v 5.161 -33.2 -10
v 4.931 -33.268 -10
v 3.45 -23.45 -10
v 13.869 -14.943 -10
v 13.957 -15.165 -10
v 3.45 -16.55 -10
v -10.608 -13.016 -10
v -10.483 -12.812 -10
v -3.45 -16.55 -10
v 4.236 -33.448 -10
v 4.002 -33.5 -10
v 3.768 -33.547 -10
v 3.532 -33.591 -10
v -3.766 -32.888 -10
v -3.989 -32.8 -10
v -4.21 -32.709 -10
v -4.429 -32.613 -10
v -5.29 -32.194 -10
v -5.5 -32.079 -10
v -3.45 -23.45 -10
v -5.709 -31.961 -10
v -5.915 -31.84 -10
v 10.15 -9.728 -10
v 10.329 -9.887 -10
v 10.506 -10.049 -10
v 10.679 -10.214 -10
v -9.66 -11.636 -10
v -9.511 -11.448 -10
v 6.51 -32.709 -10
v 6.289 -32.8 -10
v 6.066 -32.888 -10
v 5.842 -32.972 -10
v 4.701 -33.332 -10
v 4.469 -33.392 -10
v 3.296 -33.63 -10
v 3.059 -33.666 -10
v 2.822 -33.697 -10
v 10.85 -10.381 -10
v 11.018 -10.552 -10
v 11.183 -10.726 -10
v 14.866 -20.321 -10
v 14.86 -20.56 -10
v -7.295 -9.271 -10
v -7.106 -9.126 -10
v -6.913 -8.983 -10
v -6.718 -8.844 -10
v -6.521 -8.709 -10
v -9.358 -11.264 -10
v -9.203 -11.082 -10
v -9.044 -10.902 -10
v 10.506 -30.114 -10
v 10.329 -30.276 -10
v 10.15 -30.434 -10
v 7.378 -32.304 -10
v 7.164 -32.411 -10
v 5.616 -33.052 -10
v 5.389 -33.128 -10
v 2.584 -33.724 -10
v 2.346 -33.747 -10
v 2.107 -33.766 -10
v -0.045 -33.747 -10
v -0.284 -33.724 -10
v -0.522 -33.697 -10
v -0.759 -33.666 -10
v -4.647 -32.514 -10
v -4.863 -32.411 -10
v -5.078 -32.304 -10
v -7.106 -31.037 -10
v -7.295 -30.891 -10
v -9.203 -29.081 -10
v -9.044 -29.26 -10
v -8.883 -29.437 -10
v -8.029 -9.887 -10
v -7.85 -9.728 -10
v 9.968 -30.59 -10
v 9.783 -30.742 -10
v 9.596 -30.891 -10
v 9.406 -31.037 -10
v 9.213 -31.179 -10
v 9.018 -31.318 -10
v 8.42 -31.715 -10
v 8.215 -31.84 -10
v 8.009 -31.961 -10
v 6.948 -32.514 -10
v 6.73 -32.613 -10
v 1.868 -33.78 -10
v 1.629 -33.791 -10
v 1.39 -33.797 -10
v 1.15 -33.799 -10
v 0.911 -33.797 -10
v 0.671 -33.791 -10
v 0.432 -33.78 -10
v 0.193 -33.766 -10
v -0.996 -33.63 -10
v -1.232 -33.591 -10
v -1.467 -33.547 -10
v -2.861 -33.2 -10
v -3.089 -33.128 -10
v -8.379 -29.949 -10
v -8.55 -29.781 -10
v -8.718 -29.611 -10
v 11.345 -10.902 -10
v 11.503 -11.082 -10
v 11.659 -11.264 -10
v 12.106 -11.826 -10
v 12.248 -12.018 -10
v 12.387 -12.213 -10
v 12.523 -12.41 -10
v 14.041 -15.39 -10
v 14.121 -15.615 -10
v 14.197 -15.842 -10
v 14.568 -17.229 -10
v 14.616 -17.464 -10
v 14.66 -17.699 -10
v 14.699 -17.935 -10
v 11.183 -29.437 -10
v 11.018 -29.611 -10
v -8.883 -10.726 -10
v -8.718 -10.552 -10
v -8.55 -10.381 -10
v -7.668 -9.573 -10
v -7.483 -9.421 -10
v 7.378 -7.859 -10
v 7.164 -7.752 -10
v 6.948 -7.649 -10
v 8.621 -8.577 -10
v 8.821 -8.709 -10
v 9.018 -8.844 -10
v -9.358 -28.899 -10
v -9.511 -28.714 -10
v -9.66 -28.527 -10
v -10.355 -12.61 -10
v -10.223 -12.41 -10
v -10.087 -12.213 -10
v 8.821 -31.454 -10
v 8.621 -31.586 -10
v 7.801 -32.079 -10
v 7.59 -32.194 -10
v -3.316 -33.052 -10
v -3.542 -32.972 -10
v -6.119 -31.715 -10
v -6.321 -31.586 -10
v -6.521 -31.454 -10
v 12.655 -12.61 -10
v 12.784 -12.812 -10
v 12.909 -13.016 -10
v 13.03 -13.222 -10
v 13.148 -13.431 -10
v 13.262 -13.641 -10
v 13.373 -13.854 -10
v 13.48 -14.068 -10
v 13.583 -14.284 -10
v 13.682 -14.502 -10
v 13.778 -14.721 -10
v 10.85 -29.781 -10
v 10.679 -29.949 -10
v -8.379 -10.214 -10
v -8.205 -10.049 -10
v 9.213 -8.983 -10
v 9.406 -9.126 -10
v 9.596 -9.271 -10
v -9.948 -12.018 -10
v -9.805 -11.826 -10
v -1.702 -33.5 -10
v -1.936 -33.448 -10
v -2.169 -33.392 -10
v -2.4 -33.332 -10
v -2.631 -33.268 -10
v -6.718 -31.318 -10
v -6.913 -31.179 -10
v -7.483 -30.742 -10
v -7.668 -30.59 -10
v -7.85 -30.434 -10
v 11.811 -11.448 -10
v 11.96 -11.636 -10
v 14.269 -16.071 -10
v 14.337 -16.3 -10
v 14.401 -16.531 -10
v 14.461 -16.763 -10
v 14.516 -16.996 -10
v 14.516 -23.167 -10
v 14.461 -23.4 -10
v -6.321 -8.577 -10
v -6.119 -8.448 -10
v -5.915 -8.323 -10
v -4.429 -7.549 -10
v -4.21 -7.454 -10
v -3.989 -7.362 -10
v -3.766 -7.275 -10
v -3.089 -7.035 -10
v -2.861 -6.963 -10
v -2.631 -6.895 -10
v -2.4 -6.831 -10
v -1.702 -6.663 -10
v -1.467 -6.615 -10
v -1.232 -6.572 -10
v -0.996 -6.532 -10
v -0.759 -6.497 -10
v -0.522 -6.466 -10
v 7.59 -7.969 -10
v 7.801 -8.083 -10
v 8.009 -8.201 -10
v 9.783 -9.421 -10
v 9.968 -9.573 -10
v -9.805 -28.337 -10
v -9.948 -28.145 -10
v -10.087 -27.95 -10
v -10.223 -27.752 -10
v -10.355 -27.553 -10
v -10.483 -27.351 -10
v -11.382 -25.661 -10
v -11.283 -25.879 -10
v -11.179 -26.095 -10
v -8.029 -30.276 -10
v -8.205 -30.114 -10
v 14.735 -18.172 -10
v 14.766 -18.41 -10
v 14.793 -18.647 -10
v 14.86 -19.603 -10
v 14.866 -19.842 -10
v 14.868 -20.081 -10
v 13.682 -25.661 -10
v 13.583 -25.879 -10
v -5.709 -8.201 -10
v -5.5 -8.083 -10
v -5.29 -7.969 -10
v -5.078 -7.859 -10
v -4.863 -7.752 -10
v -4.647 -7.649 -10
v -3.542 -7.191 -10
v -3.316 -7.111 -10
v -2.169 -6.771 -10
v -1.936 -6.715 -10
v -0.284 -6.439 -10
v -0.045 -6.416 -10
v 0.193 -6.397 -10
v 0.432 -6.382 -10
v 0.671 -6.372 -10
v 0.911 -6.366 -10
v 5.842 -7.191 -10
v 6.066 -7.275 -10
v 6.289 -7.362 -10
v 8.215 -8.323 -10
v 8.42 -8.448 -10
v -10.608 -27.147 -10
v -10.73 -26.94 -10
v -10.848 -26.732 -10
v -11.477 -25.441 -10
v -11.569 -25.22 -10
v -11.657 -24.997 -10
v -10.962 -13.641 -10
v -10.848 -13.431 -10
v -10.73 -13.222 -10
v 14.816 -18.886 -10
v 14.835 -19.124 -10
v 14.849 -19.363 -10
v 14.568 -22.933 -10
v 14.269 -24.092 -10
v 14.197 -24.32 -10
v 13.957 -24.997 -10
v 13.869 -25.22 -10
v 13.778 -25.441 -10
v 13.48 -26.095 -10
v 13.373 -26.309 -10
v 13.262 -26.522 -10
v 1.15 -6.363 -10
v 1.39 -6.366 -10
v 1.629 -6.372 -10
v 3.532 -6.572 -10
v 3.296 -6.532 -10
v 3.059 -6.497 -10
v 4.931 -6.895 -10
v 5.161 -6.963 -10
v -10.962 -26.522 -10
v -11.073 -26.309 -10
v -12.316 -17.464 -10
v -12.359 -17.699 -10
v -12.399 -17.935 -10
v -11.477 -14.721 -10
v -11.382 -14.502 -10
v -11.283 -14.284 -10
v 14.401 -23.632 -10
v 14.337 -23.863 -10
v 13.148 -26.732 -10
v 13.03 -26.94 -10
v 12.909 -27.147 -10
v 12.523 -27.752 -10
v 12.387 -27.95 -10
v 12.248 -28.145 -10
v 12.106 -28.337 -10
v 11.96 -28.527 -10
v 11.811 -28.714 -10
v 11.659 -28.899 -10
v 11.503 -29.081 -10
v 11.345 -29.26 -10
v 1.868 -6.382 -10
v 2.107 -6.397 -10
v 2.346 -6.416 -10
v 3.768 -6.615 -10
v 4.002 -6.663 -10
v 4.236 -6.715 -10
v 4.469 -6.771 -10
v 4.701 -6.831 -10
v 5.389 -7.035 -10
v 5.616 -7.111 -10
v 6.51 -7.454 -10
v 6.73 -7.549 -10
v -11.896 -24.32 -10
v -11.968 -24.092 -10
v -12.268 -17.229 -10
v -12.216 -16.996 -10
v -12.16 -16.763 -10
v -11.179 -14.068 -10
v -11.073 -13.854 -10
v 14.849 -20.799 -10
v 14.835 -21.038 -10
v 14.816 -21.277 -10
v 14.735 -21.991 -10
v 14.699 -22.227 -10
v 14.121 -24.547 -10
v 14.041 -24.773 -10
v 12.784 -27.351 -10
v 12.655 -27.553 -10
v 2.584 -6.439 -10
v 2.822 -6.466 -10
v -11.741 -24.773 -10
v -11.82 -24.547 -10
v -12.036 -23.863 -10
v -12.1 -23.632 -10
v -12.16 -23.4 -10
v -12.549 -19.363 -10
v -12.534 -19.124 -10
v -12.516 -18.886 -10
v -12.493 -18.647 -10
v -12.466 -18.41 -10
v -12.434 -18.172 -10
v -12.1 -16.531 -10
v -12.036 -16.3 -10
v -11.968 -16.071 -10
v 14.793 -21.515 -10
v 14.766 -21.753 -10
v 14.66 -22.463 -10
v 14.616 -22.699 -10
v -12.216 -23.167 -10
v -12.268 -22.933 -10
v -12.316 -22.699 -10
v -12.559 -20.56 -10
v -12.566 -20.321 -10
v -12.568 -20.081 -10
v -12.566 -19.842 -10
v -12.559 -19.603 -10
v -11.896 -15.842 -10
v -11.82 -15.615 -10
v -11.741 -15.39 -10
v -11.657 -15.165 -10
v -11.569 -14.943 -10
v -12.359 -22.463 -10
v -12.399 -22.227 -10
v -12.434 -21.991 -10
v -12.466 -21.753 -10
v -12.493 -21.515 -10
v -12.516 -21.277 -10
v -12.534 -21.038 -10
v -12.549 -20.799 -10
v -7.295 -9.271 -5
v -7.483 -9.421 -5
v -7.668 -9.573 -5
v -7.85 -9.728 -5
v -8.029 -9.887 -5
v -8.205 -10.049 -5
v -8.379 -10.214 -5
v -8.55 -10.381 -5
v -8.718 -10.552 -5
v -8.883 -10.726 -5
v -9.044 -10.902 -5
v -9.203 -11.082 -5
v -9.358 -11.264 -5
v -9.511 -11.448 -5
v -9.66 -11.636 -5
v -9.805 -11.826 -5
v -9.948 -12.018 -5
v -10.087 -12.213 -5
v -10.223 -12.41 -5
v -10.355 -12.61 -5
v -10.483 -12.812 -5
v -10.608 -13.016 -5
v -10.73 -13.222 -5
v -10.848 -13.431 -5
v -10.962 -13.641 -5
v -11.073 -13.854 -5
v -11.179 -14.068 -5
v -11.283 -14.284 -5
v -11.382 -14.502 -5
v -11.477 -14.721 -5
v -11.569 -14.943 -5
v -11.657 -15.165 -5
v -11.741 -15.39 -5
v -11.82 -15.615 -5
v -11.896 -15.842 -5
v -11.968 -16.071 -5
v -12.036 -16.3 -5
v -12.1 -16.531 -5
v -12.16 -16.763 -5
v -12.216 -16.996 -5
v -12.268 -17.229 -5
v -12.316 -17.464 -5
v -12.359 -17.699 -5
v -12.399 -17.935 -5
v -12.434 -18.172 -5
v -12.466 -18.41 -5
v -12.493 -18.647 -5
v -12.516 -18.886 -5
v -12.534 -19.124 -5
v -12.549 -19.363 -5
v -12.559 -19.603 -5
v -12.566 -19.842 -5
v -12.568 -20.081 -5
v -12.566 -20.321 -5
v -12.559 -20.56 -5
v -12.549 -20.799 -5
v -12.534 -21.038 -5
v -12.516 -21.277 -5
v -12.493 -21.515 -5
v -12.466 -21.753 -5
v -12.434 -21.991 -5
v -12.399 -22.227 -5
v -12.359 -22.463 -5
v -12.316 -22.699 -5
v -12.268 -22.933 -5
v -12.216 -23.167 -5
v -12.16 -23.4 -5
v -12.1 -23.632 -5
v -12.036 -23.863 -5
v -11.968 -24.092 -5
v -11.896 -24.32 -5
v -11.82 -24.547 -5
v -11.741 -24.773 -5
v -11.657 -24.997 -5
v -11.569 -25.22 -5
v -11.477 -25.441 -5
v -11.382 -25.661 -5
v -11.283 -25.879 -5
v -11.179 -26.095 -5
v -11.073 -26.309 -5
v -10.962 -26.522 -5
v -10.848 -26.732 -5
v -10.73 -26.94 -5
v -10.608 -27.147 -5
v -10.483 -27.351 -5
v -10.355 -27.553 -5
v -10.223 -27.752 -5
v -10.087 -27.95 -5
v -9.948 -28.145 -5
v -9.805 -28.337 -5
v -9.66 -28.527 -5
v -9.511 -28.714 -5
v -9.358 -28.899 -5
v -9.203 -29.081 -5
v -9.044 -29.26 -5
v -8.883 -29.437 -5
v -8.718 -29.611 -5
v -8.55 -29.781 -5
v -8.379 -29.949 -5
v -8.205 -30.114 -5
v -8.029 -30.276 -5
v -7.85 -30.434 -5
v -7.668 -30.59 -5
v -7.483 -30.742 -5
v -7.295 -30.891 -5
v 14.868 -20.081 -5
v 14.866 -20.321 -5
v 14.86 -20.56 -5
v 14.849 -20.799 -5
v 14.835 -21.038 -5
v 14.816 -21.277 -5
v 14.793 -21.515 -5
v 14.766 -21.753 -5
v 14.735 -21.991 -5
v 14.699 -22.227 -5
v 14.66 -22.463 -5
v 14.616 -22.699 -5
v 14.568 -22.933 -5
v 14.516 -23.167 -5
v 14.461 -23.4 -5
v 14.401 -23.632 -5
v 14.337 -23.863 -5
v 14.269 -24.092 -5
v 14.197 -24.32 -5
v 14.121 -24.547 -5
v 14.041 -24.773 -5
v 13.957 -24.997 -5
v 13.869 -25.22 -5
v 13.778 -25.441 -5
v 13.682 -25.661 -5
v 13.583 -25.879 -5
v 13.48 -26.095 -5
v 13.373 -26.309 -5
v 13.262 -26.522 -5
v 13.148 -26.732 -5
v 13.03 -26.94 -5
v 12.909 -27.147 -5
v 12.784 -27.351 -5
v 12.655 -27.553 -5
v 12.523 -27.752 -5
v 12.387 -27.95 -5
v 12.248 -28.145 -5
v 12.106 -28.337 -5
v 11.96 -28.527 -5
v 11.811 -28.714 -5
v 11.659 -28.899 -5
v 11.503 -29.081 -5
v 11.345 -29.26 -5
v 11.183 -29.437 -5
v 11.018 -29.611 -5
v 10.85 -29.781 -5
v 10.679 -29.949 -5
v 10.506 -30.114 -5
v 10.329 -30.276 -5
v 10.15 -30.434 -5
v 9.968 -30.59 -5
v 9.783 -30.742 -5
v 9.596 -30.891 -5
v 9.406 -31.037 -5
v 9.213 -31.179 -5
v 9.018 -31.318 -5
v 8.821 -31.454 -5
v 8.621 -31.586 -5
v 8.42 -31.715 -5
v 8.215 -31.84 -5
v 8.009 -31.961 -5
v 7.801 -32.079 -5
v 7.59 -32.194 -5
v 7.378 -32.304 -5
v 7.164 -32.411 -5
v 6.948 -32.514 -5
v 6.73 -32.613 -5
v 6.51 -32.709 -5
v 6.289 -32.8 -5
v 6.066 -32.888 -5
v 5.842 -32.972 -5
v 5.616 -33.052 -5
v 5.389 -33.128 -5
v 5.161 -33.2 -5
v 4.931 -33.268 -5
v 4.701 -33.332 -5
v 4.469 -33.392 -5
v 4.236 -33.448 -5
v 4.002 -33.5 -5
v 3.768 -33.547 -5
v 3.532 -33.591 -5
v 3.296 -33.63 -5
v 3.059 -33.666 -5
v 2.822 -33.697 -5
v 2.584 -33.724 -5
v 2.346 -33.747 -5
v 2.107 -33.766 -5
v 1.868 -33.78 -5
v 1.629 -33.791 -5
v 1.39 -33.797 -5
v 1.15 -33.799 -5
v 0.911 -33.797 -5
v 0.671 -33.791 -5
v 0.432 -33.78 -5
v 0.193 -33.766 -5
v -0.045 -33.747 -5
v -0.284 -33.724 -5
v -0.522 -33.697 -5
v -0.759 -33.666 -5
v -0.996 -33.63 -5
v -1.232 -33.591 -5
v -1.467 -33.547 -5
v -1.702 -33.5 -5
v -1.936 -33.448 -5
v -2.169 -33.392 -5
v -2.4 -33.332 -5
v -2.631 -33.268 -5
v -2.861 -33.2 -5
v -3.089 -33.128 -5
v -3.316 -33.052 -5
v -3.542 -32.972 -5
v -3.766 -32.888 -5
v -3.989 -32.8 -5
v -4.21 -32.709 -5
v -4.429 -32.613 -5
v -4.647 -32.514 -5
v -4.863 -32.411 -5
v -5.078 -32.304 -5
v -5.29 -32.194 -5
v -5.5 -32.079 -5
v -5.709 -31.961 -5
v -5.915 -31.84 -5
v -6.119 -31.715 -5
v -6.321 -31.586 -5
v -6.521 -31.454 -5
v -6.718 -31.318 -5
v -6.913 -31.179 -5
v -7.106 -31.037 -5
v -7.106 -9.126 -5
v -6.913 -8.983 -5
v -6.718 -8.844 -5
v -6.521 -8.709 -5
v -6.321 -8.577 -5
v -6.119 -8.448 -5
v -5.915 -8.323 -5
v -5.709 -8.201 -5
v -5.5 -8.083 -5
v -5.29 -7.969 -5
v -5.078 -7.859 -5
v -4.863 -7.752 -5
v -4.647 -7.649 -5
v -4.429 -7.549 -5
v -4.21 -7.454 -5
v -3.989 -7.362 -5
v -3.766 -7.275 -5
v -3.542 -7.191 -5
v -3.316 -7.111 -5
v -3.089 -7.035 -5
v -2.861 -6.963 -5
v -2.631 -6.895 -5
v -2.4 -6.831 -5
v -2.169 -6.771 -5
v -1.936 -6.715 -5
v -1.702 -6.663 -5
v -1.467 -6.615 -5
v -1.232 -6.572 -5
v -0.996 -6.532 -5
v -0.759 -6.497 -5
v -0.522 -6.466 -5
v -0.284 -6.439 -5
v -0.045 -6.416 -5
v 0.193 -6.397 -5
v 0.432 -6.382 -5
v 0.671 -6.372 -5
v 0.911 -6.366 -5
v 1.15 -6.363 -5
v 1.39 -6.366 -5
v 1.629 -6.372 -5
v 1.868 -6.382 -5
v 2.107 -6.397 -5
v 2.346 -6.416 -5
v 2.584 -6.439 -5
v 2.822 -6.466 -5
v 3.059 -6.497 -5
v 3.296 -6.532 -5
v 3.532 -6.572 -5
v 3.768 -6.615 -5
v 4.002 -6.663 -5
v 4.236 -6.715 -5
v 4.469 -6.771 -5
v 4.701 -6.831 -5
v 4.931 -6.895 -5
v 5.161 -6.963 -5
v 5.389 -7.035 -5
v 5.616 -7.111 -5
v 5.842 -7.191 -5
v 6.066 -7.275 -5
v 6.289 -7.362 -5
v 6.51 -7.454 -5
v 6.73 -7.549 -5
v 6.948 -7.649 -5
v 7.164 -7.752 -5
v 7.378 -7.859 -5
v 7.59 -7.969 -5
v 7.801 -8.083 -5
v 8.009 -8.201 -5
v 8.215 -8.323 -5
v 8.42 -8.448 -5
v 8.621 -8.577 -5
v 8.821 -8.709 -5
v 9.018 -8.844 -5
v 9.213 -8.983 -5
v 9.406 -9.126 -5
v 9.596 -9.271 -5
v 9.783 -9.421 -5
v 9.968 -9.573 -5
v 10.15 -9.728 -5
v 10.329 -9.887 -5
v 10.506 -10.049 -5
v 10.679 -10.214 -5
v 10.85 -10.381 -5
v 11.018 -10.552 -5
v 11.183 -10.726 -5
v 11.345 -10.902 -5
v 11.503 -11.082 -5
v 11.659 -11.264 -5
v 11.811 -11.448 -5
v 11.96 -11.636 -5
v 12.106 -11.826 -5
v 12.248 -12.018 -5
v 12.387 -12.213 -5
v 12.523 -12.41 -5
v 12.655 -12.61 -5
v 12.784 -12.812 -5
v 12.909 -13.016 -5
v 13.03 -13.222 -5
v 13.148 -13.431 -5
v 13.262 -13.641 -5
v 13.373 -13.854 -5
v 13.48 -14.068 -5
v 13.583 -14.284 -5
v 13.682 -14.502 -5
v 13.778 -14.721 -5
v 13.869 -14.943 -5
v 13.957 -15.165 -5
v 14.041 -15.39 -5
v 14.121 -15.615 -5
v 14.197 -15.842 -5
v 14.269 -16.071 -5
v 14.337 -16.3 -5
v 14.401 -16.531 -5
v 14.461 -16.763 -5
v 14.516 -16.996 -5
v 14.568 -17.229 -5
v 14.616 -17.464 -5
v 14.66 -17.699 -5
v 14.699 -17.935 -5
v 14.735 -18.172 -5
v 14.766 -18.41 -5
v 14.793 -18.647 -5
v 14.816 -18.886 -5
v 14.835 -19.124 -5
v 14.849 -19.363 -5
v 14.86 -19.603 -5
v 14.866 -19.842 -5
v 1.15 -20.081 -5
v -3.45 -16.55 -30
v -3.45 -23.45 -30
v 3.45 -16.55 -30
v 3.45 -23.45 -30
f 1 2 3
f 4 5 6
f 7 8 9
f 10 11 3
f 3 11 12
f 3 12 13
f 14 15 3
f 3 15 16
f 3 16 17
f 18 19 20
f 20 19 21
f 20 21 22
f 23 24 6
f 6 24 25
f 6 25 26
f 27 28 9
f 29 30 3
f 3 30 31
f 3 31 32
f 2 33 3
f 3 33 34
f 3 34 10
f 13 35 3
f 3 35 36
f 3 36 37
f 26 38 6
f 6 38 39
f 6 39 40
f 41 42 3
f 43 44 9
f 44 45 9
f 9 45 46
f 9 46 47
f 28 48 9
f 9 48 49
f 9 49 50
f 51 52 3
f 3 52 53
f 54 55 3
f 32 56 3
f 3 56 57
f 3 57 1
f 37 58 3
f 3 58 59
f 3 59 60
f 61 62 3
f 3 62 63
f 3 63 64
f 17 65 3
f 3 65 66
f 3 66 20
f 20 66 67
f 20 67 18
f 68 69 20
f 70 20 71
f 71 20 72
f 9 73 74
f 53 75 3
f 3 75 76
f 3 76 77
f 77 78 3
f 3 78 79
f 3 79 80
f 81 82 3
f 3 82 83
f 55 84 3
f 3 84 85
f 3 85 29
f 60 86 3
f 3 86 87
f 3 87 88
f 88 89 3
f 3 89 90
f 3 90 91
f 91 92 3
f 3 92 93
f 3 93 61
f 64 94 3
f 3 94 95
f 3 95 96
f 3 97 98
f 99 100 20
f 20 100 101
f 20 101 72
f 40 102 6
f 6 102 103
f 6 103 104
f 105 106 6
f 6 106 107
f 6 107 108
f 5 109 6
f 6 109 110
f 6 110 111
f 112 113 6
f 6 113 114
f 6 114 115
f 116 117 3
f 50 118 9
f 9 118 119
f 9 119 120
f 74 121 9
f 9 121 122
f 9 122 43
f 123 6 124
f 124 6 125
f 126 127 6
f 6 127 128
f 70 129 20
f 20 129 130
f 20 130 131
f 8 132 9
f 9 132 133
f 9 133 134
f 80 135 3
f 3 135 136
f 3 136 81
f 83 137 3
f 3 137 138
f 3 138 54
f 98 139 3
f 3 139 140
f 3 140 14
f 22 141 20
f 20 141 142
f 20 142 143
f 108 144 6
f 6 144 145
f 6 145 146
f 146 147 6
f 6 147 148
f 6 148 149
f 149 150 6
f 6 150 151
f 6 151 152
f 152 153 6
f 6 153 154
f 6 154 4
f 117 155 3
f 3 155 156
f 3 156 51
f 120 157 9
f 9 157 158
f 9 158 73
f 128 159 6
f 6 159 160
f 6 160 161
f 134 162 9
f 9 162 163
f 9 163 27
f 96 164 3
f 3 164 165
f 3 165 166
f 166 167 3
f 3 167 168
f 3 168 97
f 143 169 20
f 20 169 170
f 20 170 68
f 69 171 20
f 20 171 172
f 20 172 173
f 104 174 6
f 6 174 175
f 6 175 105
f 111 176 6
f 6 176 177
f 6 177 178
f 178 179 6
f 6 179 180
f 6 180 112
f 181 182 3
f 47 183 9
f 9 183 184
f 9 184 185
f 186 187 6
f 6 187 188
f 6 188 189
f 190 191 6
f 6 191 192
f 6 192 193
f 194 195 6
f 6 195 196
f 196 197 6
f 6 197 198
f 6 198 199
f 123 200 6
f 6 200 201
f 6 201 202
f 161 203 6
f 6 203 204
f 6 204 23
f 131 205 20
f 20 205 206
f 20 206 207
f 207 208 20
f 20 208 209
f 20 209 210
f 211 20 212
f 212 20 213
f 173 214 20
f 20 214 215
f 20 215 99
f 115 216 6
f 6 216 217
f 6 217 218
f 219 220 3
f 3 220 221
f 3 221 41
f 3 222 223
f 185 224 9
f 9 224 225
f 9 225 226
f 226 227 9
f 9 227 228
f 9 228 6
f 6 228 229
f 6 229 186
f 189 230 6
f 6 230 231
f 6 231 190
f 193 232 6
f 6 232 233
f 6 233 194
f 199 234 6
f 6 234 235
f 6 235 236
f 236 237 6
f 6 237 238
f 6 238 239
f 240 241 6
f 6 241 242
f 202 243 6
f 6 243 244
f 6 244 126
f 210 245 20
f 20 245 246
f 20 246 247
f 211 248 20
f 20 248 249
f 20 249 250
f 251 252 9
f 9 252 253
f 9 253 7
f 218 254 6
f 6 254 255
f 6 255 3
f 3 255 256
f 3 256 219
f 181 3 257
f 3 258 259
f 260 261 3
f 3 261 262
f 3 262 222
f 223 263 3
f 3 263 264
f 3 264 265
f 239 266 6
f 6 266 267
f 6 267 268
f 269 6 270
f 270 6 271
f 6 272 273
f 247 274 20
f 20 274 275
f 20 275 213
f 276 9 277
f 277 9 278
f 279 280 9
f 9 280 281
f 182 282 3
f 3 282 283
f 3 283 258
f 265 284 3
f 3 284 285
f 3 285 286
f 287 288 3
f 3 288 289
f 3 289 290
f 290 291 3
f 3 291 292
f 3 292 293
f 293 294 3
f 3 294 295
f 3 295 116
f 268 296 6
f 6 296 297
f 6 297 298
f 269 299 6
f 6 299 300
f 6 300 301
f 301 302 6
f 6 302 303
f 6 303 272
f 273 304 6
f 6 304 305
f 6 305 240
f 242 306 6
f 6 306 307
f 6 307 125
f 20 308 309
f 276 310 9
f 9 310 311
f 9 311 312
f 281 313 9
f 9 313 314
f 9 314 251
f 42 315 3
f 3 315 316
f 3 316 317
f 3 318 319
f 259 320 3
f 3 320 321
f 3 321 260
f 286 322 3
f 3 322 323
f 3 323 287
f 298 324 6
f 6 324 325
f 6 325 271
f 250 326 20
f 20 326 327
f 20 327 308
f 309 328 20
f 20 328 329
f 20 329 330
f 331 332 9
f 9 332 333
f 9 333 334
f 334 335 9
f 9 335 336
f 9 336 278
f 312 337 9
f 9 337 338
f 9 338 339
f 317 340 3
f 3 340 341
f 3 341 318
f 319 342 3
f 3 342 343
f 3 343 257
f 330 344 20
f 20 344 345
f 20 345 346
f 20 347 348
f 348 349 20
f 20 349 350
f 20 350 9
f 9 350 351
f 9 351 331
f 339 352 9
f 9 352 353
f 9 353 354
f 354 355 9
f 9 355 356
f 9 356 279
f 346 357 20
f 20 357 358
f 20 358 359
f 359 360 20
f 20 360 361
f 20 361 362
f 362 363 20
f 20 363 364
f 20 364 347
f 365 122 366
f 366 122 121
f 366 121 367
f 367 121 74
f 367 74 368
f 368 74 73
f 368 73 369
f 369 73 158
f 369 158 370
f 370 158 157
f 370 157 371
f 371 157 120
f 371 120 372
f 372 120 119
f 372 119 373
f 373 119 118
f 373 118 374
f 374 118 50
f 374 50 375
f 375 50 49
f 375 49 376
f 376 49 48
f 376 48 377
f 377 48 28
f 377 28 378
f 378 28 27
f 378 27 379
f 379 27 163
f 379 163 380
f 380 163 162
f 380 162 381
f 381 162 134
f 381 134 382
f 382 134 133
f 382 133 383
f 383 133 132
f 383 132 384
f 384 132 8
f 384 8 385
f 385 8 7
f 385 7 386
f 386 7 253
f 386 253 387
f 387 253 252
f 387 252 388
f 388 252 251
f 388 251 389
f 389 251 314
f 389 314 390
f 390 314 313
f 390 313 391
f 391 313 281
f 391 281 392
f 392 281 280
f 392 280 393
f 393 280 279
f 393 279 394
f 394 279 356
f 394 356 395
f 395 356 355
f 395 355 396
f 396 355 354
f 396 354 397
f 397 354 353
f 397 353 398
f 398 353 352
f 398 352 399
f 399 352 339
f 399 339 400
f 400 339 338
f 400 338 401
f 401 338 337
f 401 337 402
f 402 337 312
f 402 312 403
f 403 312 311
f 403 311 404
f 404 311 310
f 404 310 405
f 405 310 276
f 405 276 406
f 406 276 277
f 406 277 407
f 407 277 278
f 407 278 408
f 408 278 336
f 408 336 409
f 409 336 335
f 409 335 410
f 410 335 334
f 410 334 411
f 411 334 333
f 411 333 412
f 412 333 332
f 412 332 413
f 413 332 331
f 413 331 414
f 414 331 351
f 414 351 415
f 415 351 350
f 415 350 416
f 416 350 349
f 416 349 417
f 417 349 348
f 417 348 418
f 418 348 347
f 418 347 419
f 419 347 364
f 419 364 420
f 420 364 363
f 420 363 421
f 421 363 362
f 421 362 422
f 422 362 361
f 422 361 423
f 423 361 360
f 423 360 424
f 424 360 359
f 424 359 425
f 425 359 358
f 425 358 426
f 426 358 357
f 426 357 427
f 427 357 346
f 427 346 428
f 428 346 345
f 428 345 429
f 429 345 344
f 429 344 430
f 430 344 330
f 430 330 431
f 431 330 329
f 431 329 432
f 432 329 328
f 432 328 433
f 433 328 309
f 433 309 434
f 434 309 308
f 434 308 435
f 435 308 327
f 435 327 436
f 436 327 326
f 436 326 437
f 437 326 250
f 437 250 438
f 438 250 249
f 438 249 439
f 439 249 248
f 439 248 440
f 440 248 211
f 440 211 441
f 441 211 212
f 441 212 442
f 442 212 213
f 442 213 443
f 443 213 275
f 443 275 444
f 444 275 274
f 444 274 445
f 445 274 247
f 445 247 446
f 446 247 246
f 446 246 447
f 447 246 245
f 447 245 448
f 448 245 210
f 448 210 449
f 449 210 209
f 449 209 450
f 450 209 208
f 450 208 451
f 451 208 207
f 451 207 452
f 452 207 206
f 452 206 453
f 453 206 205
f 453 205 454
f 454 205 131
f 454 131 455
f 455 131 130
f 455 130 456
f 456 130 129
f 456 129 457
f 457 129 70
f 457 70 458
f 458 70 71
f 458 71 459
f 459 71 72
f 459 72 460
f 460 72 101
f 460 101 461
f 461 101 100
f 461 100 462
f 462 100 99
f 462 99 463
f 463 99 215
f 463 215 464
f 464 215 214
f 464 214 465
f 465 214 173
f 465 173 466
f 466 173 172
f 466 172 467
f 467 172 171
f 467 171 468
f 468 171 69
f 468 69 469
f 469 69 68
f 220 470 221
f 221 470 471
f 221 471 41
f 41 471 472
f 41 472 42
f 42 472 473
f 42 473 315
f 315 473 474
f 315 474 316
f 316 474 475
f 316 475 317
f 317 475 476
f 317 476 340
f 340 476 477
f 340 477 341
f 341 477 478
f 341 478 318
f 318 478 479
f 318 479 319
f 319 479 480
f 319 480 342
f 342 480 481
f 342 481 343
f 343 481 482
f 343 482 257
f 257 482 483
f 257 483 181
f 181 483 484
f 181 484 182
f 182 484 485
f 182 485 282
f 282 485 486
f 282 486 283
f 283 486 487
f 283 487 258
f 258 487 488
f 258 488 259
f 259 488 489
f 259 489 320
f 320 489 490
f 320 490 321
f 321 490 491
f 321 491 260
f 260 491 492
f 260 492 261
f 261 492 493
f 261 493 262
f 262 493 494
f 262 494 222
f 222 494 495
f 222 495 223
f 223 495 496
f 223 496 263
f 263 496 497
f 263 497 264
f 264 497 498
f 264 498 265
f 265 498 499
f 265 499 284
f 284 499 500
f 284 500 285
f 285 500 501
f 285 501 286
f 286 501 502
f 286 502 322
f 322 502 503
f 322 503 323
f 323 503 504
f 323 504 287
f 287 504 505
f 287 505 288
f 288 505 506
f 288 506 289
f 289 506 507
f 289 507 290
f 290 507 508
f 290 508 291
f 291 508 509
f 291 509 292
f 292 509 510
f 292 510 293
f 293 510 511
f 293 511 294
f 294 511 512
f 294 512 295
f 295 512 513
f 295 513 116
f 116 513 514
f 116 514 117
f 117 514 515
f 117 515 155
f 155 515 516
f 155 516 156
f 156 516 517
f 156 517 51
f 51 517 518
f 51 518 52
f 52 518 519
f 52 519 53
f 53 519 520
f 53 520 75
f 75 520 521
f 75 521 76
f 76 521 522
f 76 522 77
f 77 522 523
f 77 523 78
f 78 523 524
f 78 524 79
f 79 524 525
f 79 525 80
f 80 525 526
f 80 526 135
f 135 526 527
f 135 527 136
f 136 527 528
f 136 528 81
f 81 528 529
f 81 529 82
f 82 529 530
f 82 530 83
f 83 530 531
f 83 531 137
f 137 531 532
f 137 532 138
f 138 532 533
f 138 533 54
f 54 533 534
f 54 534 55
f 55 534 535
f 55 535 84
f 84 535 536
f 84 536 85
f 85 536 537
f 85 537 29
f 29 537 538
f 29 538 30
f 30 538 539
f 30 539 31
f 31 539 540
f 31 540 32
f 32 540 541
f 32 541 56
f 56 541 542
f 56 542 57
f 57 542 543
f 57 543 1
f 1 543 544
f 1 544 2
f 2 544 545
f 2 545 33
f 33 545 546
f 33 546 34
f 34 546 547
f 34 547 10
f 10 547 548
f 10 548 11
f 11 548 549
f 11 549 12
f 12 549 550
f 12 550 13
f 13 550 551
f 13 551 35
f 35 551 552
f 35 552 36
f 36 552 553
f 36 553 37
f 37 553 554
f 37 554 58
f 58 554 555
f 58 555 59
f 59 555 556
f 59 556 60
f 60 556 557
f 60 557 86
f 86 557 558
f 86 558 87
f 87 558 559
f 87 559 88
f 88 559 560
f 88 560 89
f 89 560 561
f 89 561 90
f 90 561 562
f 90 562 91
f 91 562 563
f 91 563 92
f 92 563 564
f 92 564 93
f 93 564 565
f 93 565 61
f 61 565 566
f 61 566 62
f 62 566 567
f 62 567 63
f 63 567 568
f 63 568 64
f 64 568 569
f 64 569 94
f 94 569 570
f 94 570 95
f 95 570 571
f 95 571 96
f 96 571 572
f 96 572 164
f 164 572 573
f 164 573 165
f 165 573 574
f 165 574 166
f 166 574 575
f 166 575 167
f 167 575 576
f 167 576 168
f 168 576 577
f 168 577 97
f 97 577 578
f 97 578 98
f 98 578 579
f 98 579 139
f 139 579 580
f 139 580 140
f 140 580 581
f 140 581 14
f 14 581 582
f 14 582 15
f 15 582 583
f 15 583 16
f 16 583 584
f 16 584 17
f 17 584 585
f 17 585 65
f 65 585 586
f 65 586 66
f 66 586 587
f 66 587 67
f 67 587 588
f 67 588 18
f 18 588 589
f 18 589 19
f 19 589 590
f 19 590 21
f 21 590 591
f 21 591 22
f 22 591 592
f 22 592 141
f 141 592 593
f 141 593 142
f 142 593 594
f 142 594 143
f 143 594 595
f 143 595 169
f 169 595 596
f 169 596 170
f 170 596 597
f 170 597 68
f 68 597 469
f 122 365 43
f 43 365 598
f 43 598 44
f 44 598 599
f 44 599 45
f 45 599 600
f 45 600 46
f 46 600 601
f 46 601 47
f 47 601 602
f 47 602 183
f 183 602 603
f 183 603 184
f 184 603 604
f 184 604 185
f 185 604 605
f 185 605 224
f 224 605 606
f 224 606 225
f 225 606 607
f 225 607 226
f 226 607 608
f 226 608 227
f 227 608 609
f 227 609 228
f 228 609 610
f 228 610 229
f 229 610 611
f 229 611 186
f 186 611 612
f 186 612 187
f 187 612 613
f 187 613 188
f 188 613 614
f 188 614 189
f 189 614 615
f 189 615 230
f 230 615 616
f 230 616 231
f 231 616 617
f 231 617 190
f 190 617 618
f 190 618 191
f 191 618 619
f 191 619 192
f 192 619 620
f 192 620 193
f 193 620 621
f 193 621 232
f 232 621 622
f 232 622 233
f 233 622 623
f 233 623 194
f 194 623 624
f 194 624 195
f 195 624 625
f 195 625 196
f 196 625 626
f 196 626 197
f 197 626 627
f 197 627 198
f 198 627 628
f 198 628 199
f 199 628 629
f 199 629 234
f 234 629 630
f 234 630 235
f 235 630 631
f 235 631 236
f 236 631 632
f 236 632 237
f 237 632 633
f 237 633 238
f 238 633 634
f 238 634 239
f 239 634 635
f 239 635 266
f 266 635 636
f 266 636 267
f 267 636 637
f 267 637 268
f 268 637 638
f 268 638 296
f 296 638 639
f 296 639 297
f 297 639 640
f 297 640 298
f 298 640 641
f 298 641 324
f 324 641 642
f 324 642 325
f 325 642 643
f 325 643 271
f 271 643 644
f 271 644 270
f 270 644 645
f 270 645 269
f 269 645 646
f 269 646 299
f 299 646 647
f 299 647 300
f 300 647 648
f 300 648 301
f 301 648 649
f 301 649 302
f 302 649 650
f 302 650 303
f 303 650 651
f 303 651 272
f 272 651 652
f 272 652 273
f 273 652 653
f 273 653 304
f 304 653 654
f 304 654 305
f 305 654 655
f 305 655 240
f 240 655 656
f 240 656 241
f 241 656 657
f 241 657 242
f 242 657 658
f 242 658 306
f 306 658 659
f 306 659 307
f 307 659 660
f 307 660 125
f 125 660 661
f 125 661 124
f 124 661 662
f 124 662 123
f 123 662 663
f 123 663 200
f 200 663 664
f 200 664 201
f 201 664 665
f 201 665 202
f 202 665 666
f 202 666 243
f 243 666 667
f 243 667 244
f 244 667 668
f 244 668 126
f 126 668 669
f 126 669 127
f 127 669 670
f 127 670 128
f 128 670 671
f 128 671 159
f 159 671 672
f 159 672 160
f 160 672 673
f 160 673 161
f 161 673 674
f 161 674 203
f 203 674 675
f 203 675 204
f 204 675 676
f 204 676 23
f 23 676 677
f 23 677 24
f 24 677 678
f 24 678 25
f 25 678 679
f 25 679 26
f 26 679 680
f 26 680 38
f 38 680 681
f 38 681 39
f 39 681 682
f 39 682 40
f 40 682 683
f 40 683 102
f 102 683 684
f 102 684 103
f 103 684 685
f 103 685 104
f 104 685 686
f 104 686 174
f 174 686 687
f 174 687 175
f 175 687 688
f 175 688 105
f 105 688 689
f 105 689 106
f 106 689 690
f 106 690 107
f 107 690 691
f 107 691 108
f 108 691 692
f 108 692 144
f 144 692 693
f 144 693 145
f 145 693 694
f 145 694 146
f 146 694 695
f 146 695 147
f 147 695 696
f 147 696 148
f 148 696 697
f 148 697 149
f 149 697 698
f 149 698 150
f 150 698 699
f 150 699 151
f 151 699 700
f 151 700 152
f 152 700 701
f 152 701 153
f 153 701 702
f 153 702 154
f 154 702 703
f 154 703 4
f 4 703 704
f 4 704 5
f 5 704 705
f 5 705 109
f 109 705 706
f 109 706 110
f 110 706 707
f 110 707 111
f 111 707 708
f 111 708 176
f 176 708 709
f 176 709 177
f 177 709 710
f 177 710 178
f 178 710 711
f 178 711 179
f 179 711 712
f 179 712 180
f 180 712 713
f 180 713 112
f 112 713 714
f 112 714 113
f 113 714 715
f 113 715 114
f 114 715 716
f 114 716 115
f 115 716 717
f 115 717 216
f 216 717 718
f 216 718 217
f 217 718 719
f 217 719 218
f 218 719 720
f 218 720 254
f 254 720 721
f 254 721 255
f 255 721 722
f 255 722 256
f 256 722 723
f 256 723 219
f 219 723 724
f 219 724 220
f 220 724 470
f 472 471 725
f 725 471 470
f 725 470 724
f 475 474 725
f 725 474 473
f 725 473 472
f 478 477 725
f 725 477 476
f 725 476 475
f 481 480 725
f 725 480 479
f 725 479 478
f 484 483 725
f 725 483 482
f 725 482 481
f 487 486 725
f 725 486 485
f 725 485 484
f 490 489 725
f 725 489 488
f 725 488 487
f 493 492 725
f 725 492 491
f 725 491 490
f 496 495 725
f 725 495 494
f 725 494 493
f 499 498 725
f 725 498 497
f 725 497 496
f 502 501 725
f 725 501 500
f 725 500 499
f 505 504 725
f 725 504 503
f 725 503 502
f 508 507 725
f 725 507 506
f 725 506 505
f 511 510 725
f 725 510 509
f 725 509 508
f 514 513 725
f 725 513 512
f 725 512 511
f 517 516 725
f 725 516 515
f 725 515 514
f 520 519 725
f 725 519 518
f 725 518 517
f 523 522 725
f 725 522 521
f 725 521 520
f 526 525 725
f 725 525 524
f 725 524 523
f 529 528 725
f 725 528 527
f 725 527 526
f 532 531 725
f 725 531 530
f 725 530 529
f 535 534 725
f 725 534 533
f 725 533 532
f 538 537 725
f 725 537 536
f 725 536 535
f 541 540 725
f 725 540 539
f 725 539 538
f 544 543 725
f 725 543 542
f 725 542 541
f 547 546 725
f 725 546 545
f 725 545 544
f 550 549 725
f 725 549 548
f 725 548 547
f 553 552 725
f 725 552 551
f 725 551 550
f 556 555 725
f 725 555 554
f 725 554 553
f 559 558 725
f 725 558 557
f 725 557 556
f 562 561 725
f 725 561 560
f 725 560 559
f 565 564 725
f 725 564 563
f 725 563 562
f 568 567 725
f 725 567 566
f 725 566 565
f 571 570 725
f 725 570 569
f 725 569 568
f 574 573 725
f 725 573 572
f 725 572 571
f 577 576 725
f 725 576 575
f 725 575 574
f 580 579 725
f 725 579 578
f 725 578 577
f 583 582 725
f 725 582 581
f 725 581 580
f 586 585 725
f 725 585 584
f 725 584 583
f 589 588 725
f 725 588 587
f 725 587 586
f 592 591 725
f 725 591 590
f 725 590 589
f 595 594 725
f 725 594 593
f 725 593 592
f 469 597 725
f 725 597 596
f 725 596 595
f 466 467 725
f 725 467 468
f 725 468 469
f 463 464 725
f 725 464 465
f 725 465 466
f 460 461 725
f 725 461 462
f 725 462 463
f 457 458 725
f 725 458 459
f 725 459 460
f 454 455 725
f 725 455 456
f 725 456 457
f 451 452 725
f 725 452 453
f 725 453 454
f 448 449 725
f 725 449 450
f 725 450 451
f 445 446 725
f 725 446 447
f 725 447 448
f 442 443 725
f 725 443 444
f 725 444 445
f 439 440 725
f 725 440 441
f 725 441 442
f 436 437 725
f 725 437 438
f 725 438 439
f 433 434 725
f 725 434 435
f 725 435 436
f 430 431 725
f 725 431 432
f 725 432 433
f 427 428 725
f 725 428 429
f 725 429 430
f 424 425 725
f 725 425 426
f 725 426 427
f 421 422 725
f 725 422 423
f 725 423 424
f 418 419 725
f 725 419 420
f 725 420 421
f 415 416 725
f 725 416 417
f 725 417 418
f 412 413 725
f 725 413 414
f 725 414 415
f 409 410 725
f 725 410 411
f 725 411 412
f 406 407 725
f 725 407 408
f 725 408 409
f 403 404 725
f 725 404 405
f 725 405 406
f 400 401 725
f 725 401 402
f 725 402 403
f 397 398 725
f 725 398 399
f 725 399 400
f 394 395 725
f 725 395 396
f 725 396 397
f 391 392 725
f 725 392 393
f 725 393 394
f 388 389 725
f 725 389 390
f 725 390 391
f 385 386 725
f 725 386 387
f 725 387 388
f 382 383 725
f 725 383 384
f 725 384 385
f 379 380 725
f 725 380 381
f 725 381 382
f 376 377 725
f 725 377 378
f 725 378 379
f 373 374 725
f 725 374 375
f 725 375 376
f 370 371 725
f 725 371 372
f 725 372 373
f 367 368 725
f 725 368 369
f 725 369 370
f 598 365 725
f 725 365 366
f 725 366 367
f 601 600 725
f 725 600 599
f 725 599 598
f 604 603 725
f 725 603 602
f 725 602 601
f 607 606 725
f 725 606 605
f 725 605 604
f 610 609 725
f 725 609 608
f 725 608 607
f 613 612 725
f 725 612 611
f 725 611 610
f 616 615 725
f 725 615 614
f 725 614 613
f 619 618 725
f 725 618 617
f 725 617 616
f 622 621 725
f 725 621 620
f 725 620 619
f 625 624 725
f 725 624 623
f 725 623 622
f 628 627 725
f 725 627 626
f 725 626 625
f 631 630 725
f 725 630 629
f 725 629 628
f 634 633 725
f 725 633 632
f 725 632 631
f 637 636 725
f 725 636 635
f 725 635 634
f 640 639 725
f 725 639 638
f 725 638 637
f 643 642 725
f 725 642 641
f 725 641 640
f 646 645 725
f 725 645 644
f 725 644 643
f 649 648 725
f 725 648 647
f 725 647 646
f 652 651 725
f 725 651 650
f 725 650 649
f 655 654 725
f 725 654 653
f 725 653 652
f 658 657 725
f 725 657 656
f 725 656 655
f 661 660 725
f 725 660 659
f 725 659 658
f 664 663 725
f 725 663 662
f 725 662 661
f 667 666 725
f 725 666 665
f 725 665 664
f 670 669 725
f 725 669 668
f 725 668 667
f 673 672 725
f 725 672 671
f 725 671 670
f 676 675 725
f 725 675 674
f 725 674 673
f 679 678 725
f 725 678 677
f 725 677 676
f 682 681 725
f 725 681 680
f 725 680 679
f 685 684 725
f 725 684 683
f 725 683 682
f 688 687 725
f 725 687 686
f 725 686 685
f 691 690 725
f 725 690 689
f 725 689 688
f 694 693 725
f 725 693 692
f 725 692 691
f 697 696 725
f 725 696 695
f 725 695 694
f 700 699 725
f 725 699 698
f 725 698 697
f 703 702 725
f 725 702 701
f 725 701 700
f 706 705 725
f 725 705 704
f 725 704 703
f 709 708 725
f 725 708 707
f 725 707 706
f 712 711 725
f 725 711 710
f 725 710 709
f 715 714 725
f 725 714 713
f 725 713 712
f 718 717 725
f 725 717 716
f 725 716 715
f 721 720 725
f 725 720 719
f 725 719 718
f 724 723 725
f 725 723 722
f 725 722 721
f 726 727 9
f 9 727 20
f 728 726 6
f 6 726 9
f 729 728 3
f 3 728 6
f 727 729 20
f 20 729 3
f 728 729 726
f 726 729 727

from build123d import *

# Parameters (mm, degrees)
BOSS_EXTRUDE1_START = -5
SKETCH1_R           = 13.717927936
BOSS_EXTRUDE1_DEPTH = 5
SKETCH2_W           = 6.9
SKETCH2_H           = 6.9
BOSS_EXTRUDE2_DEPTH = 20


with BuildPart() as part:
    # Sketch1 → Boss-Extrude1 (new body)
    with BuildSketch(Plane.XY.offset(BOSS_EXTRUDE1_START)):
        with Locations((1.150128538, -20.08136278)):
            Circle(SKETCH1_R)
    extrude(amount=-BOSS_EXTRUDE1_DEPTH)

    # Sketch2 → Boss-Extrude2 (add)
    with BuildSketch(Plane(origin=(0, 0, -10), x_dir=(-1, 0, 0), z_dir=(0, 0, -1))):
        with Locations((0, -20)):
            Rectangle(SKETCH2_W, SKETCH2_H)
    extrude(amount=BOSS_EXTRUDE2_DEPTH)


solid = part.part
